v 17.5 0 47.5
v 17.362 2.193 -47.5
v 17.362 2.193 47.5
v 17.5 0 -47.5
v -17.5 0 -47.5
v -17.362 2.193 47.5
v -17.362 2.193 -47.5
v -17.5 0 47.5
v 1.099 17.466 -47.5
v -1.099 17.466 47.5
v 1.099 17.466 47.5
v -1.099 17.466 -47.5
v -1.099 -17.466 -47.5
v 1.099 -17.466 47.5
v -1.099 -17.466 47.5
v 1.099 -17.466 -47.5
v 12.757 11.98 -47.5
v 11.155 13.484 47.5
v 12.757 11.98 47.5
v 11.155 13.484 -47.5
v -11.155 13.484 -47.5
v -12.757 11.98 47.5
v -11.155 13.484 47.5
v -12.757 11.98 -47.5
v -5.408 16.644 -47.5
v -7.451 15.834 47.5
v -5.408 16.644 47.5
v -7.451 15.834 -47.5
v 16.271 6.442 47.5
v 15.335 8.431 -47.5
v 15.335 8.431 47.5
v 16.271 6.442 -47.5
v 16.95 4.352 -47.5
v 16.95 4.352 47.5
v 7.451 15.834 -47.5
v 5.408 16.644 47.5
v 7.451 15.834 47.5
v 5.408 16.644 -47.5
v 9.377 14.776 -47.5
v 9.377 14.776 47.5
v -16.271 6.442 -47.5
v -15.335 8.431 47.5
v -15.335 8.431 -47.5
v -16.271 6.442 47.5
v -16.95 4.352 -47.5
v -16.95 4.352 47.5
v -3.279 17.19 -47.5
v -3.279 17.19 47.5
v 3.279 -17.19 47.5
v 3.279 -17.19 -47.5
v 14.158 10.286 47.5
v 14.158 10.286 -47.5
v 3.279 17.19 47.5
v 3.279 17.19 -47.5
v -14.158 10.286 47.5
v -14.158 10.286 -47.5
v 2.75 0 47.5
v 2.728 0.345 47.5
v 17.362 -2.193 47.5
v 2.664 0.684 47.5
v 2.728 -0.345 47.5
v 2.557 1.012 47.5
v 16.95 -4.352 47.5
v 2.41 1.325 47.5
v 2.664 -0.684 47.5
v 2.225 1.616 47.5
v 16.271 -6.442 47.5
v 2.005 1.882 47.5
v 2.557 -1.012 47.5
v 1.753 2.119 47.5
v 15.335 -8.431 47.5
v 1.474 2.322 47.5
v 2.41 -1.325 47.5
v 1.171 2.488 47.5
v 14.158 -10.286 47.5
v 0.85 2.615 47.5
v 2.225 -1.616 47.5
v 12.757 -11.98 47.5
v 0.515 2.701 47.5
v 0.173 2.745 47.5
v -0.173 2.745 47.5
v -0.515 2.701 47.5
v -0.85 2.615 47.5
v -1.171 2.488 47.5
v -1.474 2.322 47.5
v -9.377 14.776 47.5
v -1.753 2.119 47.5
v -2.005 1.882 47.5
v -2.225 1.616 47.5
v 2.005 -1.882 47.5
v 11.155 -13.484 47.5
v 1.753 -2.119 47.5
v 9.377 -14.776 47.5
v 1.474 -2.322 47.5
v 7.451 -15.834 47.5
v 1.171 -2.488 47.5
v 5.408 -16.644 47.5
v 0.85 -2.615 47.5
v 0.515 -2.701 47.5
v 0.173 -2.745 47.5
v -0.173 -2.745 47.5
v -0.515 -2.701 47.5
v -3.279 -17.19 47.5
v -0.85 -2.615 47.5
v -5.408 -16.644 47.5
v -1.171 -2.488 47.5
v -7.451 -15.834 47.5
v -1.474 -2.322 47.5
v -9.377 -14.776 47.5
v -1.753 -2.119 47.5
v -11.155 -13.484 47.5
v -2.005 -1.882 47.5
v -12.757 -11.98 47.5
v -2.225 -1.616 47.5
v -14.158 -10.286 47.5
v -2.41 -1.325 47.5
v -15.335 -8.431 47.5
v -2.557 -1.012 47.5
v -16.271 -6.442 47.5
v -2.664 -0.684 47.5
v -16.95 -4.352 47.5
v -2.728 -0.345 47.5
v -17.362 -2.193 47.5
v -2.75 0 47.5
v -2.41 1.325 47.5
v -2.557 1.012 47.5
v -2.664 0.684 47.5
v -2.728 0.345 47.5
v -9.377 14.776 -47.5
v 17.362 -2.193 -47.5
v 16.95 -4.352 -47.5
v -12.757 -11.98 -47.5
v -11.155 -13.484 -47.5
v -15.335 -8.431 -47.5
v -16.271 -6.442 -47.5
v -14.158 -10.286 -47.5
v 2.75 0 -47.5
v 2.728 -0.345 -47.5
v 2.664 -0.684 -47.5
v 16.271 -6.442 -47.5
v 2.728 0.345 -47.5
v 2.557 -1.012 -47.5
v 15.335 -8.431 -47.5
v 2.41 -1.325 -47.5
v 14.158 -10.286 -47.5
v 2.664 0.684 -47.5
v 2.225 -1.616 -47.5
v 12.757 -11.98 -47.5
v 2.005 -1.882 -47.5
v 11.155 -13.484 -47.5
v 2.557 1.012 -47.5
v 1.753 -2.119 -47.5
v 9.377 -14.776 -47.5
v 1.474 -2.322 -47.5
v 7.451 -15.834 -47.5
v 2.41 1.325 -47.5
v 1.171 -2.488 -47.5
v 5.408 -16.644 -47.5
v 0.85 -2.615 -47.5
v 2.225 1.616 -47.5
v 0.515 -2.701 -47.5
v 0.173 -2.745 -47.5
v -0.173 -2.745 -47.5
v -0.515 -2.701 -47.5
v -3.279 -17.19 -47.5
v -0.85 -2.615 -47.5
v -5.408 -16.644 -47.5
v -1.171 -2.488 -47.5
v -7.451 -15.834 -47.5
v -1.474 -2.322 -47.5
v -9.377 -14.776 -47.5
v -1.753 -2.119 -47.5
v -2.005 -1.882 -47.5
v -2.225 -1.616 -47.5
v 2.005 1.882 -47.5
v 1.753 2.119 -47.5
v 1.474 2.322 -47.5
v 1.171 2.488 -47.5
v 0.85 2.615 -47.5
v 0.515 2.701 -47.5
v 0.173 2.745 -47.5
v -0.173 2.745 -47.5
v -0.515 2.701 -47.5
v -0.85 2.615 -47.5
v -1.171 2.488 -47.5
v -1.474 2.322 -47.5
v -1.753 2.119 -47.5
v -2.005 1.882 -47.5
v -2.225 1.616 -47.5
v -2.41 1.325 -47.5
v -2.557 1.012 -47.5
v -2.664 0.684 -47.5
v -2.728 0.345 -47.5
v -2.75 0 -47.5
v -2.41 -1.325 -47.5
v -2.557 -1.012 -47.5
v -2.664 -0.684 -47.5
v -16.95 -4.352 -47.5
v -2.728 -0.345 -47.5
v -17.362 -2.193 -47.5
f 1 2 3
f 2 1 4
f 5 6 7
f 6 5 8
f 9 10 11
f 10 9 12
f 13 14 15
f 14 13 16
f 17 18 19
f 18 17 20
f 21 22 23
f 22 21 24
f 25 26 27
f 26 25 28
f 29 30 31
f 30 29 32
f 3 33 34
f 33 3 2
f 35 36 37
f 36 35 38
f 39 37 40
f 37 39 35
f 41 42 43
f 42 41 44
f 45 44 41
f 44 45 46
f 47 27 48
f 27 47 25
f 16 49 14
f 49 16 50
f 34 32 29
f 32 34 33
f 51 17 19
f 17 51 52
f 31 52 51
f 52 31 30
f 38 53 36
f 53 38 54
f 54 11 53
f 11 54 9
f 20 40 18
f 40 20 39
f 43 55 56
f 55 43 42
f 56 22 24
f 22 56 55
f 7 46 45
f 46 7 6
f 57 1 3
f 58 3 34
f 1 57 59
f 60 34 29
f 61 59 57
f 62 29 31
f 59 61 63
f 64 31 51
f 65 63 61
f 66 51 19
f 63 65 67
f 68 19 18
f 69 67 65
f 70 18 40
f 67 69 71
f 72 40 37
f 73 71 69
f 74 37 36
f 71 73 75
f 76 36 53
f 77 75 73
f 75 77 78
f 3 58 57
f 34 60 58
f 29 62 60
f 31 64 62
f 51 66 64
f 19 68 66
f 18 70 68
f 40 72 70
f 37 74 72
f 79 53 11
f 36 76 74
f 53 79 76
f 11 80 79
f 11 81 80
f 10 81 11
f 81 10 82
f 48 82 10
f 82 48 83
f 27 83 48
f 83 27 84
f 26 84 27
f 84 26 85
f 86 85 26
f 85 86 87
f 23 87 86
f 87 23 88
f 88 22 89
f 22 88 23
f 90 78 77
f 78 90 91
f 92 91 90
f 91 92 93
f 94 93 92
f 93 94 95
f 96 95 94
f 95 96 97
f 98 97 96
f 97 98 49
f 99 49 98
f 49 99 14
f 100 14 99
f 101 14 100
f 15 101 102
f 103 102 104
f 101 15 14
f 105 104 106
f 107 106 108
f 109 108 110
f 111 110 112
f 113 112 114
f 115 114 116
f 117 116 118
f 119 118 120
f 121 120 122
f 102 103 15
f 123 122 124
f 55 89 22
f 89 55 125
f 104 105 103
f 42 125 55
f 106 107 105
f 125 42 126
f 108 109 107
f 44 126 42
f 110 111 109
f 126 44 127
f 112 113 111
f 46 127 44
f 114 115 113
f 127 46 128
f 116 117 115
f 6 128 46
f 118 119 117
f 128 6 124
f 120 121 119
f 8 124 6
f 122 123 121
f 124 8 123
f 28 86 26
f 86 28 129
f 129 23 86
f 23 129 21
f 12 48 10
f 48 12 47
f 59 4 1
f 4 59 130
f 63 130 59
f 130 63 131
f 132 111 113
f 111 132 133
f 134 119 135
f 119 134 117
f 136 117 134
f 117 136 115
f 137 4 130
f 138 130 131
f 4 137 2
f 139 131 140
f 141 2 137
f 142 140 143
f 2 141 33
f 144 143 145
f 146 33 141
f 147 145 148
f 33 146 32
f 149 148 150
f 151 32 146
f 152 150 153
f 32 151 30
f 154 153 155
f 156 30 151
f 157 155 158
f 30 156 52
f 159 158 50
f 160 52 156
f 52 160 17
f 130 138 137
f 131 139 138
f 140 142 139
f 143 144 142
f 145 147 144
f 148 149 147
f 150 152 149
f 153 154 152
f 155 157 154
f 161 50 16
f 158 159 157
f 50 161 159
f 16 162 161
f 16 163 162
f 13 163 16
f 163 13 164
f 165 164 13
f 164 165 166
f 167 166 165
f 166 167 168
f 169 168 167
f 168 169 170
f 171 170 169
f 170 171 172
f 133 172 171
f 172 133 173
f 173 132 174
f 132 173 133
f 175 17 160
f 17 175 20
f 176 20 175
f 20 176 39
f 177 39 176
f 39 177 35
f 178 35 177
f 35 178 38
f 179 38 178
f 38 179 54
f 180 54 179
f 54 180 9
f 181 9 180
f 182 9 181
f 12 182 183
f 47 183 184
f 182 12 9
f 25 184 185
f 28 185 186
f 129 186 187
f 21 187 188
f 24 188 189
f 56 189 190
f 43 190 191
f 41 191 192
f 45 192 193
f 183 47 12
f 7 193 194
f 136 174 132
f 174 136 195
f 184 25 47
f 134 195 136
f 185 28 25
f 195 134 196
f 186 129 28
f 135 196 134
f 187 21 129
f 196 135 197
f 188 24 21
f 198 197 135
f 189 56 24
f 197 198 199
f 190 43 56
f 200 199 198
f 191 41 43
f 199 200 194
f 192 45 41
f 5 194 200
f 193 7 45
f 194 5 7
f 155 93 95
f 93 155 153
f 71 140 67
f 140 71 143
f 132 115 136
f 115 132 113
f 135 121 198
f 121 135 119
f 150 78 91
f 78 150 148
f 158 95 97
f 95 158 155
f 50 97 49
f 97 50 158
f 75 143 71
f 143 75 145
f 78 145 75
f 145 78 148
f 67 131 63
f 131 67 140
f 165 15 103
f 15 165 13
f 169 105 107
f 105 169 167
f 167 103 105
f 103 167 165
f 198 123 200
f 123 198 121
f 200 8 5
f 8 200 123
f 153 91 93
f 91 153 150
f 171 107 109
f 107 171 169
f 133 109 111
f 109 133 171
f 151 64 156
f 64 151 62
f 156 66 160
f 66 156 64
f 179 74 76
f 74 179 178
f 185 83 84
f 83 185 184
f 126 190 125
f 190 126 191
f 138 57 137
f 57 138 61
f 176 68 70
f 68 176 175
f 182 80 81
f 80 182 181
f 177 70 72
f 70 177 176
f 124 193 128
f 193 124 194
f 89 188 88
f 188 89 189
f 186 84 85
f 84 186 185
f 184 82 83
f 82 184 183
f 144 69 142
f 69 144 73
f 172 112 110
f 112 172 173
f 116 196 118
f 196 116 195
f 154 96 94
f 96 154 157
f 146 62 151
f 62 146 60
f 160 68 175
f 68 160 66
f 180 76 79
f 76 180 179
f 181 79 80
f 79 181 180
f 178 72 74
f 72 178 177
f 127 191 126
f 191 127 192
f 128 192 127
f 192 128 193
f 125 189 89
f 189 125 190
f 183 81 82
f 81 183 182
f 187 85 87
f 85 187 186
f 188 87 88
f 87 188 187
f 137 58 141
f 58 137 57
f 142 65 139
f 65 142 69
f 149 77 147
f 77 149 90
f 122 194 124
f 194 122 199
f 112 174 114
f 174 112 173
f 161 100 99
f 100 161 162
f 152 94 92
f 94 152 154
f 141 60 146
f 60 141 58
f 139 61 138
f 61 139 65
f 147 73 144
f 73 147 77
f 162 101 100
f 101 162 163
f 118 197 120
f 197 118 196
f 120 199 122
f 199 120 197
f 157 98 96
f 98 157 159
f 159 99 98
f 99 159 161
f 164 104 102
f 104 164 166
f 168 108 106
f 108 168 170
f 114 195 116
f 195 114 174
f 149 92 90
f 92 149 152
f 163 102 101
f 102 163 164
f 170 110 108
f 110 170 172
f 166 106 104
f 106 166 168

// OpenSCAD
$fn = 50;


difference() {
	union() {
		translate(v = [0, 0, -47.5000000000]) {
			cylinder(h = 95, r = 17.5000000000);
		}
	}
	union() {
		translate(v = [0, 0, -100.0000000000]) {
			cylinder(h = 200, r = 2.7500000000);
		}
	}
}
